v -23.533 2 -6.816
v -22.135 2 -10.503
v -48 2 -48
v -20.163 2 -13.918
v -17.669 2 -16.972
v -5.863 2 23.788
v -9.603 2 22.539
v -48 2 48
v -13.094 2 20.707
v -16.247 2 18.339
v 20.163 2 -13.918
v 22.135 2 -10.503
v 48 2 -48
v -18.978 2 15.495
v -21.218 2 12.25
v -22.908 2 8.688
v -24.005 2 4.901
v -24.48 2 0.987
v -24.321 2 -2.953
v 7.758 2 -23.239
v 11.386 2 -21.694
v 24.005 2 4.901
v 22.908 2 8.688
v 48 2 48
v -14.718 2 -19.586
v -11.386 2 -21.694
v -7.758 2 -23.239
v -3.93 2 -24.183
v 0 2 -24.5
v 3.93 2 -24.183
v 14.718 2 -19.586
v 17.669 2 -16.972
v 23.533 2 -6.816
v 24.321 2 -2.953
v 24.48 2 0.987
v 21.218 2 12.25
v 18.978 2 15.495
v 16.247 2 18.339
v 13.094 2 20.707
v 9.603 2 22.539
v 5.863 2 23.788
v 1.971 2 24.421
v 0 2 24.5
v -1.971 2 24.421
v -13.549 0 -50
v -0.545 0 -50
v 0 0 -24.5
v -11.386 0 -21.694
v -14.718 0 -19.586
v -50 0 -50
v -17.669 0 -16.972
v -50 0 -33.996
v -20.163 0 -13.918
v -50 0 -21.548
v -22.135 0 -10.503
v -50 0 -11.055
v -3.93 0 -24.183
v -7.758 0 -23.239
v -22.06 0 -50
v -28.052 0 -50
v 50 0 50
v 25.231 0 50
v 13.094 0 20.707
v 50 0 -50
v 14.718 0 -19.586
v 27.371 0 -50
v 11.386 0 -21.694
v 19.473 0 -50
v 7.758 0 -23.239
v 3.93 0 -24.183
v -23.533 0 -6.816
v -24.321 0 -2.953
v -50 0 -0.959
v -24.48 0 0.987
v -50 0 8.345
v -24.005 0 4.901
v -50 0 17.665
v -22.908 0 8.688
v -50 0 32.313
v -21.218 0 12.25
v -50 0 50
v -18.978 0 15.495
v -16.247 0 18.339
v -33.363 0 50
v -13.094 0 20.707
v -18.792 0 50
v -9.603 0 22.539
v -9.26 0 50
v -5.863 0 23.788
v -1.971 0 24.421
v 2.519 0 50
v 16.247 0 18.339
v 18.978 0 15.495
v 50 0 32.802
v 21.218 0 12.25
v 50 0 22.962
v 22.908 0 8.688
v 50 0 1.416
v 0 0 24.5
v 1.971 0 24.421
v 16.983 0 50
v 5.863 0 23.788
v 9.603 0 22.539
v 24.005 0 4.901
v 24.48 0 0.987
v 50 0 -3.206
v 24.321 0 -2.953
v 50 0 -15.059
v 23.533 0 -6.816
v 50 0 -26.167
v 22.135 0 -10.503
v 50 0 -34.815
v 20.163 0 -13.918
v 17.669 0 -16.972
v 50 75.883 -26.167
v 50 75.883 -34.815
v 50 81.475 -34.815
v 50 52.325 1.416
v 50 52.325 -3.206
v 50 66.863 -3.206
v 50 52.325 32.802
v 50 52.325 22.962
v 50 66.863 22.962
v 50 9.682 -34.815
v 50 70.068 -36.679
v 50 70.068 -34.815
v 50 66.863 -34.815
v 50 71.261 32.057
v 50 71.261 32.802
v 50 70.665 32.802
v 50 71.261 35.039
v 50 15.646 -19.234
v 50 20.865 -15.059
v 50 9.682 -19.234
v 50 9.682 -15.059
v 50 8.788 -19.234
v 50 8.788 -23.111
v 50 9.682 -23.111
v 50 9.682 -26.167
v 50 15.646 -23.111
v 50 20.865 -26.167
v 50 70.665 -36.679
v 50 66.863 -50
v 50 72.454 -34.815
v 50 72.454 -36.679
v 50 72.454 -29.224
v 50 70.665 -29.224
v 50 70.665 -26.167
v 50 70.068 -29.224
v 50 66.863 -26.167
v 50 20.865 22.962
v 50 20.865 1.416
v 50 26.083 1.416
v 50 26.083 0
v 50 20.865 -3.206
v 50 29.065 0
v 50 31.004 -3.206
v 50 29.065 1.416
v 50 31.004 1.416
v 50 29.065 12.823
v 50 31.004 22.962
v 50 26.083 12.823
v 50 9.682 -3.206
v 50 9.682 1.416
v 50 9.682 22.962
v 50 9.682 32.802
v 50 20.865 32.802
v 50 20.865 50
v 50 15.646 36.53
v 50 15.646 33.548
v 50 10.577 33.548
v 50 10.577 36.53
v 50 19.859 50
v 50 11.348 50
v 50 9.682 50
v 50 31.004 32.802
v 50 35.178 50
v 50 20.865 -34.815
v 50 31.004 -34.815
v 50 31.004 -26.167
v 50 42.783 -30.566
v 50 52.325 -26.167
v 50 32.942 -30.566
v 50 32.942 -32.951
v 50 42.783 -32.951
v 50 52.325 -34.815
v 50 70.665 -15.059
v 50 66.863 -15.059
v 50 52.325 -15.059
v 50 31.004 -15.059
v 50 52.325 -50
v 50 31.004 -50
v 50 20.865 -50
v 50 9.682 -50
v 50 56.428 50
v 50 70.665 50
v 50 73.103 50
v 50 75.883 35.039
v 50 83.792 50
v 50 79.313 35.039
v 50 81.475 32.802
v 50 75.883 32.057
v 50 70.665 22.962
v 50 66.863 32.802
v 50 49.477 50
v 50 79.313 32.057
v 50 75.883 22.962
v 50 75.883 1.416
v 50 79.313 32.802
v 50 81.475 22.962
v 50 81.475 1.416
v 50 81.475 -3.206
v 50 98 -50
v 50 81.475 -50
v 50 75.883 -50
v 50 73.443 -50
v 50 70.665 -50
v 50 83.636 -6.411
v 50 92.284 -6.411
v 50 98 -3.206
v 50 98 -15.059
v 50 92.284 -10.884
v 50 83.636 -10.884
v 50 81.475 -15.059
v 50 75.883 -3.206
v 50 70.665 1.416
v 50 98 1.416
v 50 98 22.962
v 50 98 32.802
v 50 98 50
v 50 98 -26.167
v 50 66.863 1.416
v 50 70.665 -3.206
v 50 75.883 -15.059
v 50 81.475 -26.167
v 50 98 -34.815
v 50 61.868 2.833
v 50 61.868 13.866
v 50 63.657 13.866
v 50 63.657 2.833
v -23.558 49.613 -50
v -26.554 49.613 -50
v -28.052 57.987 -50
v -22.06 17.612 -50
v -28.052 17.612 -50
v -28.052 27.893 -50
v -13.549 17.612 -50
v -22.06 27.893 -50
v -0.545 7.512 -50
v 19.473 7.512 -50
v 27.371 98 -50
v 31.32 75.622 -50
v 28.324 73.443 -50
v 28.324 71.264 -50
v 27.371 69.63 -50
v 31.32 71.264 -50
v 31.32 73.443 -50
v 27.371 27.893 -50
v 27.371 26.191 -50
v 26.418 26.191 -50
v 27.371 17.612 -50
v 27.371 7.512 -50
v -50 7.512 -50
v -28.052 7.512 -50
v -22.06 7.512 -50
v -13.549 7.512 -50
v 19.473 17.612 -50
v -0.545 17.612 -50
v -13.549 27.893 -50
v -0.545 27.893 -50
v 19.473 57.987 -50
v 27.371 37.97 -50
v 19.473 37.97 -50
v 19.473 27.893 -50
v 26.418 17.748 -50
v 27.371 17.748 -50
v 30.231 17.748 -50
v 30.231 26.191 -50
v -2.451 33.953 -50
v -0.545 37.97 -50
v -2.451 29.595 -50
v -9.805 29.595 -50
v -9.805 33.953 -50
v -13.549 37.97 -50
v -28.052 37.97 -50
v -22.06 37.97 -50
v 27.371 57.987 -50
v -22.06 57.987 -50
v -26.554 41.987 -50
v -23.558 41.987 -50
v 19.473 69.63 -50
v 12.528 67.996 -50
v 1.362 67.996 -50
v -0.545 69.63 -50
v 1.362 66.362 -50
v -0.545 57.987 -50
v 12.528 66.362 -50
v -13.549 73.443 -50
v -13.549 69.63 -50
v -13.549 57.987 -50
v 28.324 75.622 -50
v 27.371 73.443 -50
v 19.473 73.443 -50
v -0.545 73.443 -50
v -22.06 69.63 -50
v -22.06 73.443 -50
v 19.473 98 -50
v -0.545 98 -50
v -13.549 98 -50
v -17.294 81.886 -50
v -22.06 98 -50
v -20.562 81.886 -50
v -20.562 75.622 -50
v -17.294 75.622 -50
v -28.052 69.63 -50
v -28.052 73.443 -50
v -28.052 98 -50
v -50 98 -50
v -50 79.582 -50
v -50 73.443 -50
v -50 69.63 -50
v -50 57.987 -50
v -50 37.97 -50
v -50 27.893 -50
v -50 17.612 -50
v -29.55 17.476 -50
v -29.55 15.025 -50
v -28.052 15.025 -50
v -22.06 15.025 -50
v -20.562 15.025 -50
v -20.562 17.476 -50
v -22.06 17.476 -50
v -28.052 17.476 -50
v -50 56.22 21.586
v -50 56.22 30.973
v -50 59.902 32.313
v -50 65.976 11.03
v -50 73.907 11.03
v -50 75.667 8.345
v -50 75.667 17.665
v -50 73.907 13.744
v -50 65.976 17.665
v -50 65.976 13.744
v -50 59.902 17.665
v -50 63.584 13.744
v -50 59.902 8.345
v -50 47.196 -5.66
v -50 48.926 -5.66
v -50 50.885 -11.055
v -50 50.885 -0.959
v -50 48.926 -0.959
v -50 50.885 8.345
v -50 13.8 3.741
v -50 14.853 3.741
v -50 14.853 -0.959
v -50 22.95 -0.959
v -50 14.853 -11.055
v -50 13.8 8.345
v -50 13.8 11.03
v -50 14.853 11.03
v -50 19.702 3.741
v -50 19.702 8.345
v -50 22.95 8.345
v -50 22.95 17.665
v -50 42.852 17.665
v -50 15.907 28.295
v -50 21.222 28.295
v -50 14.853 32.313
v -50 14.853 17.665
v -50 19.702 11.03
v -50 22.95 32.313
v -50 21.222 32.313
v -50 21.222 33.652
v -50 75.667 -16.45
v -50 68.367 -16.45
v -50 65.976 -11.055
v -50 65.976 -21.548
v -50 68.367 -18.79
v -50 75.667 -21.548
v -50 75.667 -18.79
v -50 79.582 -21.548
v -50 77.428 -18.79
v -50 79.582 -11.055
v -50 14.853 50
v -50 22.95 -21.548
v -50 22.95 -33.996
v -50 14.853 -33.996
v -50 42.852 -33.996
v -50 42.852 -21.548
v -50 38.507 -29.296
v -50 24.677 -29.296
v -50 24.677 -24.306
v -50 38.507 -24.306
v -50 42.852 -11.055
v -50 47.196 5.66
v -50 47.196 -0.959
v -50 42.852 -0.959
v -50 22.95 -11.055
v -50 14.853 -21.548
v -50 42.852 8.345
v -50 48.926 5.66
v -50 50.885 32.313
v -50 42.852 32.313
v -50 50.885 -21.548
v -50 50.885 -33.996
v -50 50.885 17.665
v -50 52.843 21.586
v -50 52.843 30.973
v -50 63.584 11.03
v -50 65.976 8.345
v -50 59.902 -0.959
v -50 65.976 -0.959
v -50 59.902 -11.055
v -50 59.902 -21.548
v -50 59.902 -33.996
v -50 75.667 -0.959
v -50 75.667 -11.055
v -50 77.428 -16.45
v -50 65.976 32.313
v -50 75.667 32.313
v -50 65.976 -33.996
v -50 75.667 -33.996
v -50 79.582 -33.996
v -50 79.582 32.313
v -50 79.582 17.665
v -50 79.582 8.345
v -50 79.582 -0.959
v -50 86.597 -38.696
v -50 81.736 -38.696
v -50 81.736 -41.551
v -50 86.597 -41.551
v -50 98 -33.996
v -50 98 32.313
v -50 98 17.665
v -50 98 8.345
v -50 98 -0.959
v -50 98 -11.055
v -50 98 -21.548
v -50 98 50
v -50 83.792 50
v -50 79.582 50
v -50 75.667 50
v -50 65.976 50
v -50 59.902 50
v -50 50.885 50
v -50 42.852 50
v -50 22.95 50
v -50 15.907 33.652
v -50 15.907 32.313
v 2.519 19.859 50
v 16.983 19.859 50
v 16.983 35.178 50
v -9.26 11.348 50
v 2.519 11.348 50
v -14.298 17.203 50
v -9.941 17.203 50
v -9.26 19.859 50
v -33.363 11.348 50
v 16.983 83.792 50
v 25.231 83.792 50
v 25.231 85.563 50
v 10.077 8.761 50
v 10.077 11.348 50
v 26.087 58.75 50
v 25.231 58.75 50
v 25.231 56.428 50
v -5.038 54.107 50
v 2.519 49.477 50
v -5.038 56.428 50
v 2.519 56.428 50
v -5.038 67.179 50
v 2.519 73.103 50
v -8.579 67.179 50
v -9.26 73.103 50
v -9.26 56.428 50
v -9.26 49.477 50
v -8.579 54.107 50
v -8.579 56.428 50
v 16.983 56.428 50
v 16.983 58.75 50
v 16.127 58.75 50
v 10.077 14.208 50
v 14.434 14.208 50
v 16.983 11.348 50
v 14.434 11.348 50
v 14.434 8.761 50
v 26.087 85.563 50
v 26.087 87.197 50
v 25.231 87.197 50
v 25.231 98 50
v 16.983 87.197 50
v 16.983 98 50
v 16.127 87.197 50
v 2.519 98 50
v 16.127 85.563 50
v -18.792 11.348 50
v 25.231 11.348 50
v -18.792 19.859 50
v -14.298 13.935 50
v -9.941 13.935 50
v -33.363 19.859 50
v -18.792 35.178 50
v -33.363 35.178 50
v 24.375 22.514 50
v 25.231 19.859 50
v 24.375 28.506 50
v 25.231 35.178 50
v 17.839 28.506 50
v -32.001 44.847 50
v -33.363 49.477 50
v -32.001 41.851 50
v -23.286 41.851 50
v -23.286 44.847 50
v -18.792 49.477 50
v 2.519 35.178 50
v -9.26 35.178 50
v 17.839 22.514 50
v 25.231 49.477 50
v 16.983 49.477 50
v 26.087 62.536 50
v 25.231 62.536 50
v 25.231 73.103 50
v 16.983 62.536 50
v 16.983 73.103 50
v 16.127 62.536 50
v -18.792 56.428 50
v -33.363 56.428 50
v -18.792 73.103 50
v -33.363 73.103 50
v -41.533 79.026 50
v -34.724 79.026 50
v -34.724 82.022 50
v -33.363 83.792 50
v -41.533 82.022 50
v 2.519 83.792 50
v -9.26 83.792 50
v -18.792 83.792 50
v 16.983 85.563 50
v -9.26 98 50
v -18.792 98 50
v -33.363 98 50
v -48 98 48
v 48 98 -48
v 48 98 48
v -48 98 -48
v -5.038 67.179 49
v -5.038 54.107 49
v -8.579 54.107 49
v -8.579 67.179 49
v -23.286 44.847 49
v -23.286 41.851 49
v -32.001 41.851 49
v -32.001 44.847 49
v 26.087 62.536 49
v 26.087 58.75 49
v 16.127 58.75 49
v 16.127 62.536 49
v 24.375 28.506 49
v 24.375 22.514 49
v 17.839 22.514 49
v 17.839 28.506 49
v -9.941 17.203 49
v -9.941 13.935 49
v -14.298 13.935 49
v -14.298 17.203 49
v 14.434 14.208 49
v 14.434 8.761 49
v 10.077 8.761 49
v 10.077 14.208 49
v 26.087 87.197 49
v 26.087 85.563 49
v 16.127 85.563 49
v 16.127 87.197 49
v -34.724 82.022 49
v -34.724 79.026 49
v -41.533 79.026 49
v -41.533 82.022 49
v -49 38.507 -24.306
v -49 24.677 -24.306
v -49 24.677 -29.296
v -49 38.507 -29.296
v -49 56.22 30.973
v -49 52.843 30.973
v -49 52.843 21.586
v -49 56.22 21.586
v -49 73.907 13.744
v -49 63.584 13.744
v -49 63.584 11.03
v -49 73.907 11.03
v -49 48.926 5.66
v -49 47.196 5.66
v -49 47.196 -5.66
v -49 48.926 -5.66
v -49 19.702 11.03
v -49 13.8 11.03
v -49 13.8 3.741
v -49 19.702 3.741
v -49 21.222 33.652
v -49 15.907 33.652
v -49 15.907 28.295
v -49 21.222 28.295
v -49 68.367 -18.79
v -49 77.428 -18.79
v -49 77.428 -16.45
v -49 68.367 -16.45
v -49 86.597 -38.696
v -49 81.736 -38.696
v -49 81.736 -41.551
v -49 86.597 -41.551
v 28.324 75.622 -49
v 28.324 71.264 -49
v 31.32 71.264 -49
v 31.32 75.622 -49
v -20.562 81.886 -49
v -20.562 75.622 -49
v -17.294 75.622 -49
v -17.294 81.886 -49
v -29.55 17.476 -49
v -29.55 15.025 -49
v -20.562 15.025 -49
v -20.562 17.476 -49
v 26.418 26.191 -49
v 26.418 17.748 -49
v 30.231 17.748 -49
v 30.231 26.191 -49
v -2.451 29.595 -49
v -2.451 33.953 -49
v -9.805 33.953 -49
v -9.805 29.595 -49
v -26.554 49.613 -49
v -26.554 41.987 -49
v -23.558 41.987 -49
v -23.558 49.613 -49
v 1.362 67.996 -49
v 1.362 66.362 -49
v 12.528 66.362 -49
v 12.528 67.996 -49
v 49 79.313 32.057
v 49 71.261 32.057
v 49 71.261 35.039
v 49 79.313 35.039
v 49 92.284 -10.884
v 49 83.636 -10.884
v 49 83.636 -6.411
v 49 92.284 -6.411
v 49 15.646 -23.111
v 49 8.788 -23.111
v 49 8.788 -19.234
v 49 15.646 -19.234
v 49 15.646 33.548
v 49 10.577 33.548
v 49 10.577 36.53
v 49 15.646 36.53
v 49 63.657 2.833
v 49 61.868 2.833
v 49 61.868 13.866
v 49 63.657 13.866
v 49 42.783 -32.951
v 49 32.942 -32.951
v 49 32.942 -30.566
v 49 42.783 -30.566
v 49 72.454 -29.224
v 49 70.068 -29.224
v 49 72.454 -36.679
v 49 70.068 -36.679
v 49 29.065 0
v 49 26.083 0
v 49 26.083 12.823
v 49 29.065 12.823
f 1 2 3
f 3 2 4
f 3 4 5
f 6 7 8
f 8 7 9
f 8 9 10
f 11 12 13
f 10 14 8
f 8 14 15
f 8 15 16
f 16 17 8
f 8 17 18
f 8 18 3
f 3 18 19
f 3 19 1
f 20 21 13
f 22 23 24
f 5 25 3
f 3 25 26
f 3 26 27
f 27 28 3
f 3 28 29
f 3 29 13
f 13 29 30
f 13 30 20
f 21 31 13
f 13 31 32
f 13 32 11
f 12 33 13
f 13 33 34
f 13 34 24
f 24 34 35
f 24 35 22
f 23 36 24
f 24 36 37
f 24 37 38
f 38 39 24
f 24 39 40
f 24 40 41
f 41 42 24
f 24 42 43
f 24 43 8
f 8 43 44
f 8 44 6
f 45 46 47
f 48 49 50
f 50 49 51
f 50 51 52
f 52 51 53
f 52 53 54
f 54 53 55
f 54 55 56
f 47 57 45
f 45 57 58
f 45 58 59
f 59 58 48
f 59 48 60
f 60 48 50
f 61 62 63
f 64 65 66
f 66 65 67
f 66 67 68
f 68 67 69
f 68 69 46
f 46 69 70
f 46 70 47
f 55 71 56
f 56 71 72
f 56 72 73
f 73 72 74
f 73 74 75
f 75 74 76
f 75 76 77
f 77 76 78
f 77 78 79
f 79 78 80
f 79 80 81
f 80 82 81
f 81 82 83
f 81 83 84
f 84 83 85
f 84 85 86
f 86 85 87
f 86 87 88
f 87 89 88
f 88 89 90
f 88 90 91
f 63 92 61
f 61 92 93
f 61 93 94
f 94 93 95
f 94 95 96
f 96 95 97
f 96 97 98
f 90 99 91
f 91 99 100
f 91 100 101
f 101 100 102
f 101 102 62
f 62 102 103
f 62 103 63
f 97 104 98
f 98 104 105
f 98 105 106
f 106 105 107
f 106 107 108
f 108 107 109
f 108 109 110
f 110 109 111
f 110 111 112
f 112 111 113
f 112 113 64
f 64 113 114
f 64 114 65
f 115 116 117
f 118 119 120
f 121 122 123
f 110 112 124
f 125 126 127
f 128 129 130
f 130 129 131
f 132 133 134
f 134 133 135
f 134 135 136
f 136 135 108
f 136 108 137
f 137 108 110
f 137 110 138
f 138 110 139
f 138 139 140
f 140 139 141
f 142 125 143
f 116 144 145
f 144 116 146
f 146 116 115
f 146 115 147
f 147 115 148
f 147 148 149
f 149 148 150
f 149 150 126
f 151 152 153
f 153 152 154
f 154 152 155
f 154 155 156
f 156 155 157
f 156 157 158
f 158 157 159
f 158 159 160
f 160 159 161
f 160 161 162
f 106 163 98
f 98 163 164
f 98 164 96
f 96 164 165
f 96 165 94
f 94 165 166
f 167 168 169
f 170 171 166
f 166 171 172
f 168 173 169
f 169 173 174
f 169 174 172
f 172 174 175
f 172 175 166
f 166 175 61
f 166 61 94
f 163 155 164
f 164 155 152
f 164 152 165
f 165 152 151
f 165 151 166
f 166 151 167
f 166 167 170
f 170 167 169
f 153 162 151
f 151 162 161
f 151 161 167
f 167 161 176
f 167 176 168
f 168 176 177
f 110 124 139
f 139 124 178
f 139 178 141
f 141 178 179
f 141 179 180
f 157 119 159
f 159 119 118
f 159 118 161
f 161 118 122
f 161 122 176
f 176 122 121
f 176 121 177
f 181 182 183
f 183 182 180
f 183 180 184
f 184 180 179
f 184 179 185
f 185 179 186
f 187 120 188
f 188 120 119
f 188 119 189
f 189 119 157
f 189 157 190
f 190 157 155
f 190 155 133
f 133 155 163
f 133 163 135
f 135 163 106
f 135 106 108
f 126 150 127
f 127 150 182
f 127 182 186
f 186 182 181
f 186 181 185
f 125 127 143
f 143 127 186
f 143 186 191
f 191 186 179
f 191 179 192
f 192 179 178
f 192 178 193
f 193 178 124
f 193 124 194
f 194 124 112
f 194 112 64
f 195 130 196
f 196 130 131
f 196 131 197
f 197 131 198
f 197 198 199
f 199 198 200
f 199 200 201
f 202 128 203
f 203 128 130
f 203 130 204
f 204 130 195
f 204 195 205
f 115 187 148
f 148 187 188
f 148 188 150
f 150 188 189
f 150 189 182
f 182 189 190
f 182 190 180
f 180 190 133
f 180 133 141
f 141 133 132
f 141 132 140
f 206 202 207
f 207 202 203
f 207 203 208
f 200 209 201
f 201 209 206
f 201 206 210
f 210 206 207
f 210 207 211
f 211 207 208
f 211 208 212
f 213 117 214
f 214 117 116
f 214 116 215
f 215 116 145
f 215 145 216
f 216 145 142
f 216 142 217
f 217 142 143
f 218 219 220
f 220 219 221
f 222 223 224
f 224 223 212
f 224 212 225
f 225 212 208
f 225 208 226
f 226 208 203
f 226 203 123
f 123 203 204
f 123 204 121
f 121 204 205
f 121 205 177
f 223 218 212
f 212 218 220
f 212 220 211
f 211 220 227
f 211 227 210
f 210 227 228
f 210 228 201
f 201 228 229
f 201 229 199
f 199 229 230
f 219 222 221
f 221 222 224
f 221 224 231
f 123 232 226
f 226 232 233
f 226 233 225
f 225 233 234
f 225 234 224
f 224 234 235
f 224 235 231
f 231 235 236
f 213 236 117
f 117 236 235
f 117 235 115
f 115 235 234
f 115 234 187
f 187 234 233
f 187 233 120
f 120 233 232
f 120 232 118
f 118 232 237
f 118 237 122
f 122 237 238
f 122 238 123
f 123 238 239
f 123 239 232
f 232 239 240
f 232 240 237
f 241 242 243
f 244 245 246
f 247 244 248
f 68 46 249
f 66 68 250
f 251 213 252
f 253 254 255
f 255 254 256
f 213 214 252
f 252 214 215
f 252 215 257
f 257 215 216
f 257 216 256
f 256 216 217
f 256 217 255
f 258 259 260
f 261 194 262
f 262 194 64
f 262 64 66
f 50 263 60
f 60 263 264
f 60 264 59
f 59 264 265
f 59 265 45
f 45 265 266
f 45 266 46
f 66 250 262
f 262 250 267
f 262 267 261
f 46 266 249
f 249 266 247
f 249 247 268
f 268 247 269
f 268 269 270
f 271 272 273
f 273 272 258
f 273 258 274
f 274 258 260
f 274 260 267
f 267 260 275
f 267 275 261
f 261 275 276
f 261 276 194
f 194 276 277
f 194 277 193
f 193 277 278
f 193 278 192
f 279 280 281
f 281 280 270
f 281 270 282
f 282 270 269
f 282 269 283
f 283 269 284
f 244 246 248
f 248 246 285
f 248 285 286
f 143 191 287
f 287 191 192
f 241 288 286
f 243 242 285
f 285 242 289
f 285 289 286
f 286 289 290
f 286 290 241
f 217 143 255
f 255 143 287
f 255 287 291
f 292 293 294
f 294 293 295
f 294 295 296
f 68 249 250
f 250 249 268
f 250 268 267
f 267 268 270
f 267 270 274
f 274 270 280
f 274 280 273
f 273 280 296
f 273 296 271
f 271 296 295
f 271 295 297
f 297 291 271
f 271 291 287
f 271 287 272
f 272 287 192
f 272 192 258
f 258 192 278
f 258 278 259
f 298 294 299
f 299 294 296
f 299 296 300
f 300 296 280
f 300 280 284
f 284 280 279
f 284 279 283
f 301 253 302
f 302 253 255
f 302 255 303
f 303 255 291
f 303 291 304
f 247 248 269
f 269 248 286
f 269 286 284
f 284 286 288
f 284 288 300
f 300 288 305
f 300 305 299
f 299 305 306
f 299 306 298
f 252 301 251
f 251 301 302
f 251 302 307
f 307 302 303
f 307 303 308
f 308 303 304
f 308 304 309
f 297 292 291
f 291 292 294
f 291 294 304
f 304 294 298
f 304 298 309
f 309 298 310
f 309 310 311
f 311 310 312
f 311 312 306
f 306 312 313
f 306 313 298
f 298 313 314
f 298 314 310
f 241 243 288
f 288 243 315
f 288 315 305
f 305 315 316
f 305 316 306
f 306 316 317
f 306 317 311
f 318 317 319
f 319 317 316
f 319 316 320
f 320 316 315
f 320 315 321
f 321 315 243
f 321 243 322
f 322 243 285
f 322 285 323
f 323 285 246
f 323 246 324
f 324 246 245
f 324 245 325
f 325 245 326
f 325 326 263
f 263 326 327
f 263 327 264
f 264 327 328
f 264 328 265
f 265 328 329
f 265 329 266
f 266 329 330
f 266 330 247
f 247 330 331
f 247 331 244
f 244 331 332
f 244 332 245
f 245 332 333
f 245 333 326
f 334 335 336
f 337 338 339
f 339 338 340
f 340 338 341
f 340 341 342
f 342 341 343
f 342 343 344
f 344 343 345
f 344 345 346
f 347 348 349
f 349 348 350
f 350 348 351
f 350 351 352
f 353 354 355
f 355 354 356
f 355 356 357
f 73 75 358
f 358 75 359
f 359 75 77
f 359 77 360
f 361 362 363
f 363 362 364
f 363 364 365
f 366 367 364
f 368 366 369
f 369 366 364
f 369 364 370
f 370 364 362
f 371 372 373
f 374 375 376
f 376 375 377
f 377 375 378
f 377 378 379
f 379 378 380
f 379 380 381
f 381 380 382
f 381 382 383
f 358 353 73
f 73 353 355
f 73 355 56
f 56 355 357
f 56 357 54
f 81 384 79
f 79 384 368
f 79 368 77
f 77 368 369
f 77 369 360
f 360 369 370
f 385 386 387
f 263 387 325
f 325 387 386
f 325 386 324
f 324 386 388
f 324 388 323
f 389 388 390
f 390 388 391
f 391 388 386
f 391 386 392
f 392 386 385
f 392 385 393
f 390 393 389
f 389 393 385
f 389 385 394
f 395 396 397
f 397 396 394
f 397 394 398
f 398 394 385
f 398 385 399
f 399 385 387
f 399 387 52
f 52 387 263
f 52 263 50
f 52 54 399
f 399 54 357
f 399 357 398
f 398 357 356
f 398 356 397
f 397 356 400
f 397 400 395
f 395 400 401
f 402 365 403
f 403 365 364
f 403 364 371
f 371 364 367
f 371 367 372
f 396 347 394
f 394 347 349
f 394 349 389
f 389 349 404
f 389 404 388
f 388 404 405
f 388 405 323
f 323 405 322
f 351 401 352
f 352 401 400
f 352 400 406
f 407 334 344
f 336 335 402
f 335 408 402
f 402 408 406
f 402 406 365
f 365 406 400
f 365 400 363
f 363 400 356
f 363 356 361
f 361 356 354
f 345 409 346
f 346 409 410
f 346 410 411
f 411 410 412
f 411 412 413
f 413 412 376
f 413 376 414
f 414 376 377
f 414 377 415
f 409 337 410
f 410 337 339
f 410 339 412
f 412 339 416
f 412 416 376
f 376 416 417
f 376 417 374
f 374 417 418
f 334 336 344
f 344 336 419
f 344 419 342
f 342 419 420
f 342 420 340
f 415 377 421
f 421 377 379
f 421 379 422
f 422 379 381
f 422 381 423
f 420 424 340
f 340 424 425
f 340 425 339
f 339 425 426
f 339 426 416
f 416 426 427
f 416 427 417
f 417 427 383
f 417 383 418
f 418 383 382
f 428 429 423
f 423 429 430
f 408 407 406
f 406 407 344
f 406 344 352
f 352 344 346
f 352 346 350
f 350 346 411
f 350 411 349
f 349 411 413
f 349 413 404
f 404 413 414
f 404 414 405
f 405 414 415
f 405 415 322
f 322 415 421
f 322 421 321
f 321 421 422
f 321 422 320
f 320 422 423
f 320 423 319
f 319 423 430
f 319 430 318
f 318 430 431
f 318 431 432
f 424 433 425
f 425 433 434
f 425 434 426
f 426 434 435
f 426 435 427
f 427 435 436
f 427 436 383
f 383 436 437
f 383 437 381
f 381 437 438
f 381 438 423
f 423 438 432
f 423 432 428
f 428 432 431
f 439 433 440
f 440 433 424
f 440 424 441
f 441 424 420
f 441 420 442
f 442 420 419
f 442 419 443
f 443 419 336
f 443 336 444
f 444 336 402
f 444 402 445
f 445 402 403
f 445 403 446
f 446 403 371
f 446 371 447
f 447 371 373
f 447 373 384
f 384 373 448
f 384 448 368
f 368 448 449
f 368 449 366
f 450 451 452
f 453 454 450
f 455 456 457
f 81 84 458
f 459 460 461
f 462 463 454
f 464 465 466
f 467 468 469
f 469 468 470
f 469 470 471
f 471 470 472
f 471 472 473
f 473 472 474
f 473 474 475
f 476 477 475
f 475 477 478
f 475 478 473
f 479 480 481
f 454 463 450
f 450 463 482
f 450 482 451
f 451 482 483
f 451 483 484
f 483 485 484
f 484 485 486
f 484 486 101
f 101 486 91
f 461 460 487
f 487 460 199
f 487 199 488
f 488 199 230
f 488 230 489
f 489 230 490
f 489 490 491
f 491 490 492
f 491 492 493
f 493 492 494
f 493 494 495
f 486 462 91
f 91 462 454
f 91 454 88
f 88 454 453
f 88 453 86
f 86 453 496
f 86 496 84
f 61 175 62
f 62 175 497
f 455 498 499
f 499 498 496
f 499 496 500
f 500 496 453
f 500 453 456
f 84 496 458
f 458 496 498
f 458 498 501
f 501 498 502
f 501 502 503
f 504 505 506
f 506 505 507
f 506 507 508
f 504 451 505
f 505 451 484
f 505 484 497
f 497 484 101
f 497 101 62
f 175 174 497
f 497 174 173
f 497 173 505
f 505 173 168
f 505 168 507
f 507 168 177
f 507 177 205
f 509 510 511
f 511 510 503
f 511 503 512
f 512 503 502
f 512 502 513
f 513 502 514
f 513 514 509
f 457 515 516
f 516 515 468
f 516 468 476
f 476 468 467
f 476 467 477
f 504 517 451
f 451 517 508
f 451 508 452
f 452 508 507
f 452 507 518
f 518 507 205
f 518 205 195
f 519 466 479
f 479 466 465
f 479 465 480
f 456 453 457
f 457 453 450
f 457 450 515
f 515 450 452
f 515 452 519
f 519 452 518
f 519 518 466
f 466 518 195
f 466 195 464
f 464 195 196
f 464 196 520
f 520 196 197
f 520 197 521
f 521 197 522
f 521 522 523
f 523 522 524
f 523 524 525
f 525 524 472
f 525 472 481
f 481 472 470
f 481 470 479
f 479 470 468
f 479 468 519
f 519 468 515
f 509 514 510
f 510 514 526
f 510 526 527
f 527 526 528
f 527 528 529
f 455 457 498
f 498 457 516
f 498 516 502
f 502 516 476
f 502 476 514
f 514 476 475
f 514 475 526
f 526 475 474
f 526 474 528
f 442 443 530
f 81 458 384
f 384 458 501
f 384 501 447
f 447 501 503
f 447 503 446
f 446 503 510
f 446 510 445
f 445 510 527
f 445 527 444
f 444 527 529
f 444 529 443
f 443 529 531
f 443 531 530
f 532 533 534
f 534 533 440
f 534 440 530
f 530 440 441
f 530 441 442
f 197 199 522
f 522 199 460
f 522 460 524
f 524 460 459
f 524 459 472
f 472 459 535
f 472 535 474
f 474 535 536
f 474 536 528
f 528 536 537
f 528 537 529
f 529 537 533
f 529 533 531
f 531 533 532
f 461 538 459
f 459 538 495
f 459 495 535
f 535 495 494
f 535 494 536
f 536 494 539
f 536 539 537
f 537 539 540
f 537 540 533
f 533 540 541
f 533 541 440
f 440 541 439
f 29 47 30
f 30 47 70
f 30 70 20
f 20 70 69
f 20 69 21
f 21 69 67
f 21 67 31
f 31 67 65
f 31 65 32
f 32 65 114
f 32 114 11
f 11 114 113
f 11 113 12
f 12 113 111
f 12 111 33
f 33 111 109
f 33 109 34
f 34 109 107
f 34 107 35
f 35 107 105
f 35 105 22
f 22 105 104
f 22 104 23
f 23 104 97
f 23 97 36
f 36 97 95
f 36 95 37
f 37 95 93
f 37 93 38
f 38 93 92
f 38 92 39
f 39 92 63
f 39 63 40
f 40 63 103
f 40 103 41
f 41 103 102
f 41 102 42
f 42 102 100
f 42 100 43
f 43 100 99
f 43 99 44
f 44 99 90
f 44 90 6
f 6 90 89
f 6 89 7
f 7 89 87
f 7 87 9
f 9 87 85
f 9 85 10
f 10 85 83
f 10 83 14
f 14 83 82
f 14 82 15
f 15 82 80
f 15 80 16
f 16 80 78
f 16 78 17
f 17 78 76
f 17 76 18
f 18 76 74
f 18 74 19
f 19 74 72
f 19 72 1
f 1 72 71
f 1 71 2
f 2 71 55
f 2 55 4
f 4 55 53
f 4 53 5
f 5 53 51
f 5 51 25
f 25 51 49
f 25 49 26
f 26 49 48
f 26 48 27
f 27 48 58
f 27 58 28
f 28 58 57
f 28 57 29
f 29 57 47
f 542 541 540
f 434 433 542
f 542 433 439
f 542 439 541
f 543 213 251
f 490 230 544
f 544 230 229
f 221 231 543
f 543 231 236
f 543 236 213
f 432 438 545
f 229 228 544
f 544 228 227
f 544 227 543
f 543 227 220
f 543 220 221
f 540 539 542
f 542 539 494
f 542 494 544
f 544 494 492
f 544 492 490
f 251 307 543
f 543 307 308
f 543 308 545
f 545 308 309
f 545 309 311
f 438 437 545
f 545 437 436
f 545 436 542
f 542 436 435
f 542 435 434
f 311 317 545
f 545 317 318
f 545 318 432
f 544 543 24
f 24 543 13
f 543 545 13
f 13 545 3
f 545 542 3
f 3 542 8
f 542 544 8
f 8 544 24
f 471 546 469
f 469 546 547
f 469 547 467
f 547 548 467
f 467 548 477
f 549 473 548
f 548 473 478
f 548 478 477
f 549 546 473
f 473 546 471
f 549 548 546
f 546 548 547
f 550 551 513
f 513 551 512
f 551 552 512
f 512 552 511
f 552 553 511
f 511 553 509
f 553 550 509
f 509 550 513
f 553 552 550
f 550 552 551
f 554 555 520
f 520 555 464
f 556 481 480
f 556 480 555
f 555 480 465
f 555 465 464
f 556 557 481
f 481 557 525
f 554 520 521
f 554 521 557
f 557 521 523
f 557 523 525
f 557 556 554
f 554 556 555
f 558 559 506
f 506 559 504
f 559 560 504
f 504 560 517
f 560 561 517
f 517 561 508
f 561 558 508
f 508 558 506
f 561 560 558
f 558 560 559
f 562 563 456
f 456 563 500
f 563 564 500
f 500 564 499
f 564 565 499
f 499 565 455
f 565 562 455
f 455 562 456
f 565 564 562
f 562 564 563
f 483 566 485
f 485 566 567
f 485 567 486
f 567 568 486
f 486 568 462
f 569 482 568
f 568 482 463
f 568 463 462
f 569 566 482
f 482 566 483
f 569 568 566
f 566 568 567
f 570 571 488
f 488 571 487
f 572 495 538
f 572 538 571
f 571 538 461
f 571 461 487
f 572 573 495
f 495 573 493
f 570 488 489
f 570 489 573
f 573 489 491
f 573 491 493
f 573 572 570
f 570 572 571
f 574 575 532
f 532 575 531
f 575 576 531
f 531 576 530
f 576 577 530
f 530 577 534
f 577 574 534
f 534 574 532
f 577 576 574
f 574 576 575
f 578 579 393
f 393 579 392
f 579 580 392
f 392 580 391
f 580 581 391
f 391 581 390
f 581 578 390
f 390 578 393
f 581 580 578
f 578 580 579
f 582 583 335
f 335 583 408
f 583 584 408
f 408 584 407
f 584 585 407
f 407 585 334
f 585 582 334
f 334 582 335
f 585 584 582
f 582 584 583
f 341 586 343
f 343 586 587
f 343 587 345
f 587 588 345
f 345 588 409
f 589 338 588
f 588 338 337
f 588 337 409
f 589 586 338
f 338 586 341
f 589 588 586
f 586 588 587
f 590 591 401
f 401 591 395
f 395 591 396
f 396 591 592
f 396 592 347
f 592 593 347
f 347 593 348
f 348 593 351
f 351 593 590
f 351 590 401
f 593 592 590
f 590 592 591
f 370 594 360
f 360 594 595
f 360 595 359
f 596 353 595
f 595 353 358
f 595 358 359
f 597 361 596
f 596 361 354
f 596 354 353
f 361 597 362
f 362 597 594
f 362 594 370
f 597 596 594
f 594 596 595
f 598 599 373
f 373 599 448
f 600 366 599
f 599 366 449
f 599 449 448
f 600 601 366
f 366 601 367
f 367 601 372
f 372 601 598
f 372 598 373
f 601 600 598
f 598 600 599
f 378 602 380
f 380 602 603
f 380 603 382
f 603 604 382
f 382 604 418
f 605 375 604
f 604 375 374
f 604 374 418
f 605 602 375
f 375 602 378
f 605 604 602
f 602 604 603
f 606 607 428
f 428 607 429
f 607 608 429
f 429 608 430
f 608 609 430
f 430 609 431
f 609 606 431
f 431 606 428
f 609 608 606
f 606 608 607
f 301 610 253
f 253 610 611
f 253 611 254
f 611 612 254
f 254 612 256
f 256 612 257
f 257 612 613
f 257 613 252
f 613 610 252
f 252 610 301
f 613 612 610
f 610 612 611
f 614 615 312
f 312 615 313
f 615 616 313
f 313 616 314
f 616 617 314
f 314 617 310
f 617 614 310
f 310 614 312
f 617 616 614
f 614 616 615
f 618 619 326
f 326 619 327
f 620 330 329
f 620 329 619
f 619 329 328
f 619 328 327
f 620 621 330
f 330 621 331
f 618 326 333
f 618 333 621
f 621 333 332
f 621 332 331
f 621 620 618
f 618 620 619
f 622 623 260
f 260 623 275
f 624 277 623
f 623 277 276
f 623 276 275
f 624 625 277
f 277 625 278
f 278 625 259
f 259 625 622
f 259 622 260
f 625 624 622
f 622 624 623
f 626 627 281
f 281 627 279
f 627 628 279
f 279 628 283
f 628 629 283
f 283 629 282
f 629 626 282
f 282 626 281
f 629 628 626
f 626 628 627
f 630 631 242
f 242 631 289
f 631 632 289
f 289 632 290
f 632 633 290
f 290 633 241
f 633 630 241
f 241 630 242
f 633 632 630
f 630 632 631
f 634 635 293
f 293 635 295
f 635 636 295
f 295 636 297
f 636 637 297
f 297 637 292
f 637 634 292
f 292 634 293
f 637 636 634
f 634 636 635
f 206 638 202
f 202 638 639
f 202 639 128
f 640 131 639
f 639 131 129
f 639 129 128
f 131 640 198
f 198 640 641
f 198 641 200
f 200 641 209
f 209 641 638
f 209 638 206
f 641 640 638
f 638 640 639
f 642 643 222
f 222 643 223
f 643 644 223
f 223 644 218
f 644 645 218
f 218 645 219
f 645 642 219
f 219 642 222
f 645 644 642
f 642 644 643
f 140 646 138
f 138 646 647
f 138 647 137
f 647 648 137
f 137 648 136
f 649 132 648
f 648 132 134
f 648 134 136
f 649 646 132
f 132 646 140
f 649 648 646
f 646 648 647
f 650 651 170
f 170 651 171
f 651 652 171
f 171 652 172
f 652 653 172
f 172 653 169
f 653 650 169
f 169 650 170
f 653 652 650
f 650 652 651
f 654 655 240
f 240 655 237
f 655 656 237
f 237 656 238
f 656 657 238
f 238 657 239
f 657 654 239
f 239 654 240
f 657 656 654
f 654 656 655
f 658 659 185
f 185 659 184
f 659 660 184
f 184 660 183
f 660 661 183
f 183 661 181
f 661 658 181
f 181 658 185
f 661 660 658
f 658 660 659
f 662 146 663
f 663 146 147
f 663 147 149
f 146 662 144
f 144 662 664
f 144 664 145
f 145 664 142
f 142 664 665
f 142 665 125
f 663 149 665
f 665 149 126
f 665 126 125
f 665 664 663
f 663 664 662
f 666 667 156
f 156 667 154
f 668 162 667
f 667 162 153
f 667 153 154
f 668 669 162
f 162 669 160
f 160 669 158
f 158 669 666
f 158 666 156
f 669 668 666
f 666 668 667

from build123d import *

# Parameters (mm, degrees)
IZIM1_W                     = 100
IZIM1_H                     = 100
IZIM1_R                     = 24.5
Y_KSEKLIK_EKSTR_ZYON1_DEPTH = 2
IZIM2_W                     = 100
IZIM2_H                     = 100
IZIM2_W_2                   = 96
IZIM2_H_2                   = 96
Y_KSEKLIK_EKSTR_ZYON2_DEPTH = 96
IZIM3_W                     = 6.808697121
IZIM3_H                     = 2.995826734
IZIM3_W_2                   = 3.540522504
IZIM3_H_2                   = 13.072698474
IZIM3_W_3                   = 8.715132316
IZIM3_W_4                   = 9.959144329
IZIM3_H_3                   = 3.786659795
IZIM3_W_5                   = 6.536349237
IZIM3_H_4                   = 5.991653467
IZIM3_W_6                   = 4.357566158
IZIM3_H_5                   = 3.268174619
IZIM3_H_6                   = 5.446957697
IZIM3_H_7                   = 1.63408731
KES_EKSTR_ZYON1_DEPTH       = 1
IZIM4_W                     = 2.855123206
IZIM4_H                     = 4.861170012
IZIM4_W_2                   = 11.319008014
IZIM4_H_2                   = 1.730473094
IZIM4_W_3                   = 2.714479197
IZIM4_H_3                   = 10.322809225
IZIM4_W_4                   = 9.387113738
IZIM4_H_4                   = 3.377434488
IZIM4_W_5                   = 4.989274294
IZIM4_H_5                   = 13.829779239
IZIM4_W_6                   = 7.288706005
IZIM4_H_6                   = 5.901605045
IZIM4_W_7                   = 5.357045211
IZIM4_H_7                   = 5.315156672
IZIM4_W_8                   = 2.340389822
IZIM4_H_8                   = 9.060236987
KES_EKSTR_ZYON2_DEPTH       = 1
IZIM5_W                     = 2.995826734
IZIM5_H                     = 4.357566158
IZIM5_W_2                   = 11.16626328
IZIM5_H_2                   = 1.634087309
IZIM5_W_3                   = 2.995826733
IZIM5_H_3                   = 7.625740777
IZIM5_W_4                   = 7.353392891
IZIM5_W_5                   = 3.812870388
IZIM5_H_4                   = 8.442784431
IZIM5_W_6                   = 8.987480201
IZIM5_H_5                   = 2.451130964
IZIM5_W_7                   = 3.268174618
IZIM5_H_6                   = 6.264001352
KES_EKSTR_ZYON3_DEPTH       = 1
IZIM6_W                     = 2.982026027
IZIM6_H                     = 8.051470273
IZIM6_W_2                   = 11.033496299
IZIM6_H_2                   = 1.789215616
IZIM6_W_3                   = 2.385620822
IZIM6_H_3                   = 9.840685888
IZIM6_W_4                   = 7.455065067
IZIM6_H_4                   = 2.385620821
IZIM6_W_5                   = 12.822711915
IZIM6_H_5                   = 2.982026027
IZIM6_H_6                   = 5.069444246
IZIM6_W_6                   = 3.876633835
IZIM6_H_7                   = 6.858659862
IZIM6_W_7                   = 4.473039041
IZIM6_H_8                   = 8.647875478
KES_EKSTR_ZYON4_DEPTH       = 1


with BuildPart() as part:
    # Çizim1 → Yükseklik-Ekstrüzyon1 (new body)
    with BuildSketch(Plane(origin=(0, 0, 0), x_dir=(1, 0, 0), z_dir=(0, 1, 0))):
        Rectangle(IZIM1_W, IZIM1_H)
        with Locations(Location((0, 0, 0), (0, 0, 270))):
            Circle(IZIM1_R, mode=Mode.SUBTRACT)
    extrude(amount=Y_KSEKLIK_EKSTR_ZYON1_DEPTH)

    # Çizim2 → Yükseklik-Ekstrüzyon2 (add)
    with BuildSketch(Plane(origin=(0, 2, 0), x_dir=(1, 0, 0), z_dir=(0, 1, 0))):
        Rectangle(IZIM2_W, IZIM2_H)
        Rectangle(IZIM2_W_2, IZIM2_H_2, mode=Mode.SUBTRACT)
    extrude(amount=Y_KSEKLIK_EKSTR_ZYON2_DEPTH)

    # Çizim3 → Kes-Ekstrüzyon1 (cut)
    with BuildSketch(Plane.XY.offset(50)):
        with Locations((-38.128703883, 80.524267674)):
            Rectangle(IZIM3_W, IZIM3_H)
        with Locations((-6.808697122, 60.642872078)):
            Rectangle(IZIM3_W_2, IZIM3_H_2)
        with Locations((-27.643310315, 43.348781389)):
            Rectangle(IZIM3_W_3, IZIM3_H)
        with Locations((21.106961078, 60.642872079)):
            Rectangle(IZIM3_W_4, IZIM3_H_3)
        with Locations((21.106961078, 25.50999493)):
            Rectangle(IZIM3_W_5, IZIM3_H_4)
        with Locations((-12.119480877, 15.569297132)):
            Rectangle(IZIM3_W_6, IZIM3_H_5)
        with Locations((12.255654819, 11.484078859)):
            Rectangle(IZIM3_W_6, IZIM3_H_6)
        with Locations((21.106961078, 86.379747199)):
            Rectangle(IZIM3_W_4, IZIM3_H_7)
    extrude(amount=-KES_EKSTR_ZYON1_DEPTH, mode=Mode.SUBTRACT)

    # Çizim4 → Kes-Ekstrüzyon2 (cut)
    with BuildSketch(Plane.ZY.offset(50)):
        with Locations((-40.12319253, 84.166167132)):
            Rectangle(IZIM4_W, IZIM4_H)
        with Locations((0, 48.061123669)):
            Rectangle(IZIM4_W_2, IZIM4_H_2)
        with Locations((12.386939179, 68.745292742)):
            Rectangle(IZIM4_W_3, IZIM4_H_3)
        with Locations((26.279902445, 54.531767203)):
            Rectangle(IZIM4_W_4, IZIM4_H_4)
        with Locations((-26.801088585, 31.592223885)):
            Rectangle(IZIM4_W_5, IZIM4_H_5)
        with Locations((7.385346578, 16.750764677)):
            Rectangle(IZIM4_W_6, IZIM4_H_6)
        with Locations((30.973459314, 18.564160483)):
            Rectangle(IZIM4_W_7, IZIM4_H_7)
        with Locations((-17.619740697, 72.897531843)):
            Rectangle(IZIM4_W_8, IZIM4_H_8)
    extrude(amount=-KES_EKSTR_ZYON2_DEPTH, mode=Mode.SUBTRACT)

    # Çizim5 → Kes-Ekstrüzyon3 (cut)
    with BuildSketch(Plane(origin=(0, 0, -50), x_dir=(-1, 0, 0), z_dir=(0, 0, -1))):
        with Locations((-29.822093394, 73.443222668)):
            Rectangle(IZIM5_W, IZIM5_H)
        with Locations((-6.944871064, 67.179221316)):
            Rectangle(IZIM5_W_2, IZIM5_H_2)
        with Locations((25.056005409, 45.799912353)):
            Rectangle(IZIM5_W_3, IZIM5_H_3)
        with Locations((6.12782741, 31.773996282)):
            Rectangle(IZIM5_W_4, IZIM5_H)
        with Locations((-28.324180027, 21.969472427)):
            Rectangle(IZIM5_W_5, IZIM5_H_4)
        with Locations((25.056005408, 16.250166844)):
            Rectangle(IZIM5_W_6, IZIM5_H_5)
        with Locations((18.928177999, 78.754006423)):
            Rectangle(IZIM5_W_7, IZIM5_H_6)
    extrude(amount=-KES_EKSTR_ZYON3_DEPTH, mode=Mode.SUBTRACT)

    # Çizim6 → Kes-Ekstrüzyon4 (cut)
    with BuildSketch(Plane(origin=(50, 0, 0), x_dir=(0, 0, -1), z_dir=(1, 0, 0))):
        with Locations((-33.547792801, 75.286818133)):
            Rectangle(IZIM6_W, IZIM6_H)
        with Locations((-8.349672875, 62.76230882)):
            Rectangle(IZIM6_W_2, IZIM6_H_2)
        with Locations((31.758577185, 37.862391497)):
            Rectangle(IZIM6_W_3, IZIM6_H_3)
        with Locations((32.951387596, 71.261082997)):
            Rectangle(IZIM6_W_4, IZIM6_H_4)
        with Locations((-6.411355958, 27.574401705)):
            Rectangle(IZIM6_W_5, IZIM6_H_5)
        with Locations((-35.038805815, 13.111575475)):
            Rectangle(IZIM6_W, IZIM6_H_6)
        with Locations((21.17238479, 12.216967667)):
            Rectangle(IZIM6_W_6, IZIM6_H_7)
        with Locations((8.647875478, 87.960428746)):
            Rectangle(IZIM6_W_7, IZIM6_H_8)
    extrude(amount=-KES_EKSTR_ZYON4_DEPTH, mode=Mode.SUBTRACT)


solid = part.part
